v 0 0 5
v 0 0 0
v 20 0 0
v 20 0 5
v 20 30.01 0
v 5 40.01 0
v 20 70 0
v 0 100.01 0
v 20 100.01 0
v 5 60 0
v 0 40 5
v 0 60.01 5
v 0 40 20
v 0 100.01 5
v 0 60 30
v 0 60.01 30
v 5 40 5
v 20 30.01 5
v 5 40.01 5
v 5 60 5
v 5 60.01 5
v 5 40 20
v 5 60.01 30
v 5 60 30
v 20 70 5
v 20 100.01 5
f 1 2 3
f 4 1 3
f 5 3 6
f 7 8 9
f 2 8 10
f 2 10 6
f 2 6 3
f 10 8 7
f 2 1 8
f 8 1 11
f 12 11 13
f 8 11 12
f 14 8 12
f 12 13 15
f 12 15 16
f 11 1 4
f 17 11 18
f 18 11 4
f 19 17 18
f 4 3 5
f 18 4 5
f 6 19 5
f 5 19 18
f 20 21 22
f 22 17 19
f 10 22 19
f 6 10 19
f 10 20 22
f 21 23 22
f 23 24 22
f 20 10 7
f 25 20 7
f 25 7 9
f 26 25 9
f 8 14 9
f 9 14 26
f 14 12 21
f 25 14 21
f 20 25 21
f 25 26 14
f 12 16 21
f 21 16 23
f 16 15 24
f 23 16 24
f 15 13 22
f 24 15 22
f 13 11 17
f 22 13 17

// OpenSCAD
// file: beams.scad
/* 
 * openscad beams library
 * create complex openscads objects from frames which are defining beams
 * (constructed like a ship body or airplane hull)
 *
 * https://github.com/Stemer114/openscad_beams
 * http://www.thingiverse.com/Stemer114/designs
 * 
 *    Copyright (C) 2016 Stemer114 (stemer114@merunka.de)
 *
 *    This program is free software: you can redistribute it and/or modify
 *    it under the terms of the GNU General Public License as published by
 *    the Free Software Foundation, either version 3 of the License, or
 *    (at your option) any later version.
 *
 *    This program is distributed in the hope that it will be useful,
 *    but WITHOUT ANY WARRANTY; without even the implied warranty of
 *    MERCHANTABILITY or FITNESS FOR A PARTICULAR PURPOSE.  See the
 *    GNU General Public License for more details.
 *
 *    You should have received a copy of the GNU General Public License
 *    along with this program.  If not, see <http://www.gnu.org/licenses/>.
 *

 * Credits: 
 *          for some of the examples
 *          MCAD Library - Polyholes Copyright 2011 Nophead (of RepRap fame)
 *          It is licensed under the terms of Creative Commons Attribution 3.0 Unported.
 *          https://github.com/SolidCode/MCAD/blob/master/polyholes.scad
 *
 *          BeamsVersion, libEcho and code structure inspired by 
 *          OpenSCAD Parts Library by randyy is licensed under the GNU - LGPL license. 
 *          http://www.thingiverse.com/thing:6021
 *
 */

//**** house keeping
//we define these as functions to avoid assignment problems from caller modules
function BeamsVersion() = 1.0;  //library version
function ep()=0.01;  //epsilon environment to avoid non-manifold objects


//**** module definitions

// a single rectangular frame, usually very thin
// params: w - width of frame (x direction)
//         h - height of frame (z direction)
//         d - thickness of frame (y direction, usually very thin, e.g. 0.1mm)
//         o - offset vector from origin (probably best to use x and y offsets only here for starters)
//         r - rotation vector (probably best to use only z rotation here for starters)
//         vec - vector interface, used instead of the named params
//         the vector must use the following structure (example)
//           w  h  rotation    offset        thickness
//          [3, 4, [0, 0, 90], [0, -1.5, 0], ep ],   //start (front center)
//         there is no checking other than length checking to branch in the interface
//         so better make sure the vector conforms
//         the vector interface allows you to define a list of vectors in your source file
//         and supply them all at once to the beam module (see below)
//         this probably makes more sense if you look at some of the example files
module frame(
        w = 10,  //width
        h = 10,  //height
        r = [0, 0, 0],  //rotation vector
        o = [0, 0, 0],   //offset vector
        d = ep(),  //thickness (normally very thin)
        vec = [],  //vector, default none
        )
{
    if ( len(vec)==5 ) {
        //use vector interface
        translate( vec[3] )
            rotate( vec[2] )
            cube([ vec[0], vec[4], vec[1] ]);
    } else {
        //use single param interface
        translate(o)
            rotate(r)
            cube([w, d, h]);
    }  //end else
}  //end module

// a single beam consisting of two frames at either end, connected by a hull
// to disable hull, use no_hull=true (for debugging)
// beam uses the vector interface (see above in module frame)
module beam(
        frame1 = [10, 10, [0, 0, 0], [0, 0, 0], ep() ],
        frame2 = [10, 10, [0, 0, 0], [0, 20, 0], ep() ],
        no_hull = false,   
        )
{
    if ( no_hull ) {
        frame(vec=frame1);
        frame(vec=frame2);
    } else {
        hull() {
            frame(vec=frame1);
            frame(vec=frame2);
        }  //end hull
    }  //end else
}  //end module

// a beam consisting of 2 or more frames connected by hulls
// uses the vector interface (see above)
// see example scad files in library source to get an idea how to use this
module beam_multi(frames=[], no_hull=false )
{
    if ( len(frames)<2 ) {
        echo("WARNING: beam_multi: number of frames too small (must be at least 2): ", len(frames) );
    } else {
        for ( frame = [0:len(frames)-2] ) {
            beam( frames[frame], frames[frame+1], no_hull=no_hull );
        } //end for

    }
}

/*************************************************
 * interface 
*/

libEcho=true;
if (libEcho!=false){ 
	echo("****************************************************************  ");
    echo(" beams scad library loaded.");
    echo(" Version: ", BeamsVersion() );
    echo(" usage: - include beams.scad in your project dir,");
    echo("        - then add include <beams.scad> to your script ");
	echo("        - to turn off this header, place libEcho=false; in your script");
    echo("        - see examples scad files to some inspiration")
	echo("****************************************************************  ");
}
// main file
/*
 * a collection of simple examples for beams library
 * example for using openscad beams library
 *
 */

ep = 0.01;  //epsilon environment

include <beams.scad>

//          w   h   rotation   offset    thickness
params = [ 
           [20, 5, [0, 0, 0], [0, 0, 0], ep ],     //front flange
           [20, 5, [0, 0, 0], [0, 30, 0], ep ],
           [5, 5, [0, 0, 0], [0, 40, 0], ep ],
           [5, 20, [0, 0, 0], [0, 40, 0], ep ],    //vertical bar
           [5, 30, [0, 0, 0], [0, 60, 0], ep ],
           [5, 5, [0, 0, 0], [0, 60, 0], ep ],     //rear flange
           [20, 5, [0, 0, 0], [0, 70, 0], ep ],
           [20, 5, [0, 0, 0], [0, 100, 0], ep ],  
         ];

beam_multi(frames=params );
